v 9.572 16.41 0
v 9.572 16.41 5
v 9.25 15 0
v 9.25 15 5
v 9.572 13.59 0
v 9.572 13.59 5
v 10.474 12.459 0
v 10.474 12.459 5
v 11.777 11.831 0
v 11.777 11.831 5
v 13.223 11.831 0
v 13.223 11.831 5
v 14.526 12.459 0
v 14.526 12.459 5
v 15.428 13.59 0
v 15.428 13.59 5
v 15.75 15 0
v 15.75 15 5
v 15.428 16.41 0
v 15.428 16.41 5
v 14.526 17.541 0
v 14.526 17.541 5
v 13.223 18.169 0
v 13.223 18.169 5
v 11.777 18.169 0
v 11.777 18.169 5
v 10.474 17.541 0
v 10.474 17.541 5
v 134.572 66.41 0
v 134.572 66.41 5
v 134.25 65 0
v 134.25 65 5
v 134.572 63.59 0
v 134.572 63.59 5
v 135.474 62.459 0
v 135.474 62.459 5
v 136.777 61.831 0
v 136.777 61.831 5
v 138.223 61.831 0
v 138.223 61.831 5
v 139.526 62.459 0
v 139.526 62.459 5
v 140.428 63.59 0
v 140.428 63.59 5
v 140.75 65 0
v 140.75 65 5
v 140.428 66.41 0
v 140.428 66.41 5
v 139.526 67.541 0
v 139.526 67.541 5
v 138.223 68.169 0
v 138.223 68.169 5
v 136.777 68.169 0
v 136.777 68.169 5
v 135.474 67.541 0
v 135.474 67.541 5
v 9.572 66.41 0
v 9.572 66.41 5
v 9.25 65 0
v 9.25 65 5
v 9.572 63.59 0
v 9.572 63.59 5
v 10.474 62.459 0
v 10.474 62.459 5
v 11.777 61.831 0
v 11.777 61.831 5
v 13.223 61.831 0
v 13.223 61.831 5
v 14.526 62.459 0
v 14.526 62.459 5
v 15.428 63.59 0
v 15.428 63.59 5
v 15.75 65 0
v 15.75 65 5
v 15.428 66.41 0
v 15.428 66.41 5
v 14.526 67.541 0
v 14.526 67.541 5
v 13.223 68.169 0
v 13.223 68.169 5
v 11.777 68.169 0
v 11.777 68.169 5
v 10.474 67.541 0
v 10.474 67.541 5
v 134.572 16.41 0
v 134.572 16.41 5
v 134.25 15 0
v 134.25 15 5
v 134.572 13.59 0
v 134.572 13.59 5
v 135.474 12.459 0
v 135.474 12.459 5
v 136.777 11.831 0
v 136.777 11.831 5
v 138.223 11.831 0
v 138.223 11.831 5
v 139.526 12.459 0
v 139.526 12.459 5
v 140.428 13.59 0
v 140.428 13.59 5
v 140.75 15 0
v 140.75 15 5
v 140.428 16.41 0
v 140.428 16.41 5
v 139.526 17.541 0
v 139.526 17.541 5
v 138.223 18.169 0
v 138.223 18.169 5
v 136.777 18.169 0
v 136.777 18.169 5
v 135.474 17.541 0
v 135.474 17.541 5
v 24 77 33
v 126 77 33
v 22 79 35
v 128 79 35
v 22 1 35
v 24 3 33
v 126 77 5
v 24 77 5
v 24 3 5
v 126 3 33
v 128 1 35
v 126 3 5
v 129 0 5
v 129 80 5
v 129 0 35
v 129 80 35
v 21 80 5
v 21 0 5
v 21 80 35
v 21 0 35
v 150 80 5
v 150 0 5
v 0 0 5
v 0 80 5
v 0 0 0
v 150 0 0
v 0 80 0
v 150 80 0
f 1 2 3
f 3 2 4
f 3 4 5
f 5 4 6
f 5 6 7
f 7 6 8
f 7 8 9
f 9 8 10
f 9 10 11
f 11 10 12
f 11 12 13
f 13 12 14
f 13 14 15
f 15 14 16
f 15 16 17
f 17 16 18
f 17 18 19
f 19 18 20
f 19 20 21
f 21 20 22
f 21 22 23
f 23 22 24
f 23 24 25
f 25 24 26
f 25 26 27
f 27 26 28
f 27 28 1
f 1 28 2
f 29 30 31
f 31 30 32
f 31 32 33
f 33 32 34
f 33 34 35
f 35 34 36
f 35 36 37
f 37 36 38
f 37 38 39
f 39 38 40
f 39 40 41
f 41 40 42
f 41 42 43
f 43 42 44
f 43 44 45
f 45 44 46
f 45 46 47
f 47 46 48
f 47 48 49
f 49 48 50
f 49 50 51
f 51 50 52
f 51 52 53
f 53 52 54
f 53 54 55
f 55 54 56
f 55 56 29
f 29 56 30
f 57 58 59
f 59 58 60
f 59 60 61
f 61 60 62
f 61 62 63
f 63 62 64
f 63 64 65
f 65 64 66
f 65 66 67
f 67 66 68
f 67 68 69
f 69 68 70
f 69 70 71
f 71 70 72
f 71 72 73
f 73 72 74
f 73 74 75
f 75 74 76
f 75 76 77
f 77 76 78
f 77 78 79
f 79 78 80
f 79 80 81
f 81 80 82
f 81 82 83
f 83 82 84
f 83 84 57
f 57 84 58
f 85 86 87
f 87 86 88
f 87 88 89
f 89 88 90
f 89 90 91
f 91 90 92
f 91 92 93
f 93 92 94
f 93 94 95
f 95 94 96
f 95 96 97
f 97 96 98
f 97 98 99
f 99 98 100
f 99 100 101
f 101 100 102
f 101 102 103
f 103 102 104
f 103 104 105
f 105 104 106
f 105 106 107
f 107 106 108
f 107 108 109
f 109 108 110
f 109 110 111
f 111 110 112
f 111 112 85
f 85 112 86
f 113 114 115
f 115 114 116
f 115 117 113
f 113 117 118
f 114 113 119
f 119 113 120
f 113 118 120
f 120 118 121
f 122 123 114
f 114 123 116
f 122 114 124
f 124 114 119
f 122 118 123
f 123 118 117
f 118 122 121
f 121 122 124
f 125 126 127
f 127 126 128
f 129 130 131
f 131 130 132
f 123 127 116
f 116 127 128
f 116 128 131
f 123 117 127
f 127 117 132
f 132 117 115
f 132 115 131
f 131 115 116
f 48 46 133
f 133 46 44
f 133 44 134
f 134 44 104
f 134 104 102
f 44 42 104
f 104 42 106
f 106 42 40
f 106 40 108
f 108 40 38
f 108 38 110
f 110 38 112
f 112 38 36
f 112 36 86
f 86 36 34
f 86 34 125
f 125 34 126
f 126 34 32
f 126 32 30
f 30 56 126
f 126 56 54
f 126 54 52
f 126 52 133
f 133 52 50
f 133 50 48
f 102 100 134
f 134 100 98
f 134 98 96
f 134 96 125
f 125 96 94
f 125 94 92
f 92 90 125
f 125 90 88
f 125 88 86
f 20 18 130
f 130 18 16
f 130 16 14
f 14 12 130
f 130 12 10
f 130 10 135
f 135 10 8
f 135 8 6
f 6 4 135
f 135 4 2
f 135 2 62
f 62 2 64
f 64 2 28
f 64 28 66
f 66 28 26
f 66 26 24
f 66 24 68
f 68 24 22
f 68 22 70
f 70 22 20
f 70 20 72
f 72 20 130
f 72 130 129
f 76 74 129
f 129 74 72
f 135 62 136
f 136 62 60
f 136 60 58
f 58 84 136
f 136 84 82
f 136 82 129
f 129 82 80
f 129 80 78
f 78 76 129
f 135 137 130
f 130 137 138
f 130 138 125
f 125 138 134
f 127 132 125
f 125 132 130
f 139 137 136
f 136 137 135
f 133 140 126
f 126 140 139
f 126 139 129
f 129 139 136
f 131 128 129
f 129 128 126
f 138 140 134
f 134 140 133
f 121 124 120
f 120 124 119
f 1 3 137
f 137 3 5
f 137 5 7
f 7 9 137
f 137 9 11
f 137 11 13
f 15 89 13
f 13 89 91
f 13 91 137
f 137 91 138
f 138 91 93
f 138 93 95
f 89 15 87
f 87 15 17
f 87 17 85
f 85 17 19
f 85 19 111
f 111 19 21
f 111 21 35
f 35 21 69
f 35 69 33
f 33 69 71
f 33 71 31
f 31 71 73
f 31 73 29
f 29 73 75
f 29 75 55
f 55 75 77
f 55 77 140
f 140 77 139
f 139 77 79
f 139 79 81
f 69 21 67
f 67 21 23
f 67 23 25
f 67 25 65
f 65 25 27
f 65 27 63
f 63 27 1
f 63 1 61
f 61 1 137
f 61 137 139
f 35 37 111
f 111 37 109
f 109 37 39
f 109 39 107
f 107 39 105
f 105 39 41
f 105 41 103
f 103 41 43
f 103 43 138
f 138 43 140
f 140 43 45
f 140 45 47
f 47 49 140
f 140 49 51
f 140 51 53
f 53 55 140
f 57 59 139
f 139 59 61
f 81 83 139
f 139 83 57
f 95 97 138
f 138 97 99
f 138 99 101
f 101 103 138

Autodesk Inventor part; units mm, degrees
ref_plane "YZ Plane" through (0, 0, 0) normal (1, 0, 0) x (0, 1, 0)
ref_plane "XZ Plane" through (0, 0, 0) normal (0, 1, 0) x (-1, 0, 0)
ref_plane "XY Plane" through (0, 0, 0) normal (0, 0, 1) x (1, 0, 0)
sketch "Sketch1" plane through (0, 0, 0) normal (0, 0, 1) x (1, 0, 0)
  line L0 (0, 0) -> (150, 0)
  line L1 (150, 0) -> (150, 80)
  line L2 (150, 80) -> (0, 80)
  line L3 (0, 80) -> (0, 0)
  dimension "d0" = 150
  dimension "d1" = 80
extrude "Extrusion1" add sketch "Sketch1" along normal blind 5
sketch "Sketch2" plane through (0, 0, 5) normal (0, 0, 1) x (1, 0, 0)
  line L0 (0, 0) -> (150, 0) projected
  line L1 (150, 80) -> (0, 80) projected
  line L2 (129, 0) -> (21, 0)
  line L3 (21, 0) -> (21, 80)
  line L4 (21, 80) -> (129, 80)
  line L5 (129, 80) -> (129, 0)
  line L6 (126, 3) -> (24, 3)
  line L7 (24, 3) -> (24, 77)
  line L8 (24, 77) -> (126, 77)
  line L9 (126, 77) -> (126, 3)
  line L10 (150, 0) -> (150, 80) projected
  point P0 (129, 80)
  point P1 (21, 0)
  dimension "d4" = 108
  dimension "d5" = 102
  dimension "d6" = 3
  dimension "d7" = 3
  dimension "d8" = 3
  dimension "d9" = 21
extrude "Extrusion2" add sketch "Sketch2" along normal blind 30 contours L3 L1 L5 L0
chamfer "Chamfer1" distance 2 angle 45 1 edges at (75, 3, 35)
chamfer "Chamfer2" distance 2 angle 45 1 edges at (126, 40, 35)
chamfer "Chamfer3" distance 2 angle 45 2 edges at (75, 77, 35) (24, 40, 35)
sketch "Sketch3" plane through (0, 0, 5) normal (0, 0, 1) x (1, 0, 0)
  circle A0 centre (137.5, 15) radius 3.25
  circle A1 centre (137.5, 65) radius 3.25
  line L0 (150, 0) -> (150, 80) projected
  line L1 (129, 0) -> (150, 0) projected
  line L2 (75, -16.6248) -> (75, 70.7208)
  line L3 (0, 80) -> (0, 0) projected
  circle A2 centre (12.5, 15) radius 3.25
  circle A3 centre (12.5, 65) radius 3.25
  dimension "d21" = 6.5
  dimension "d22" = 6.5
  dimension "d23" = 12.5
  dimension "d24" = 12.5
  dimension "d25" = 50
  dimension "d26" = 15
  dimension "d27" = 75
extrude "Extrusion3" cut sketch "Sketch3" against normal blind 60
properties part number "MediumHolder"
